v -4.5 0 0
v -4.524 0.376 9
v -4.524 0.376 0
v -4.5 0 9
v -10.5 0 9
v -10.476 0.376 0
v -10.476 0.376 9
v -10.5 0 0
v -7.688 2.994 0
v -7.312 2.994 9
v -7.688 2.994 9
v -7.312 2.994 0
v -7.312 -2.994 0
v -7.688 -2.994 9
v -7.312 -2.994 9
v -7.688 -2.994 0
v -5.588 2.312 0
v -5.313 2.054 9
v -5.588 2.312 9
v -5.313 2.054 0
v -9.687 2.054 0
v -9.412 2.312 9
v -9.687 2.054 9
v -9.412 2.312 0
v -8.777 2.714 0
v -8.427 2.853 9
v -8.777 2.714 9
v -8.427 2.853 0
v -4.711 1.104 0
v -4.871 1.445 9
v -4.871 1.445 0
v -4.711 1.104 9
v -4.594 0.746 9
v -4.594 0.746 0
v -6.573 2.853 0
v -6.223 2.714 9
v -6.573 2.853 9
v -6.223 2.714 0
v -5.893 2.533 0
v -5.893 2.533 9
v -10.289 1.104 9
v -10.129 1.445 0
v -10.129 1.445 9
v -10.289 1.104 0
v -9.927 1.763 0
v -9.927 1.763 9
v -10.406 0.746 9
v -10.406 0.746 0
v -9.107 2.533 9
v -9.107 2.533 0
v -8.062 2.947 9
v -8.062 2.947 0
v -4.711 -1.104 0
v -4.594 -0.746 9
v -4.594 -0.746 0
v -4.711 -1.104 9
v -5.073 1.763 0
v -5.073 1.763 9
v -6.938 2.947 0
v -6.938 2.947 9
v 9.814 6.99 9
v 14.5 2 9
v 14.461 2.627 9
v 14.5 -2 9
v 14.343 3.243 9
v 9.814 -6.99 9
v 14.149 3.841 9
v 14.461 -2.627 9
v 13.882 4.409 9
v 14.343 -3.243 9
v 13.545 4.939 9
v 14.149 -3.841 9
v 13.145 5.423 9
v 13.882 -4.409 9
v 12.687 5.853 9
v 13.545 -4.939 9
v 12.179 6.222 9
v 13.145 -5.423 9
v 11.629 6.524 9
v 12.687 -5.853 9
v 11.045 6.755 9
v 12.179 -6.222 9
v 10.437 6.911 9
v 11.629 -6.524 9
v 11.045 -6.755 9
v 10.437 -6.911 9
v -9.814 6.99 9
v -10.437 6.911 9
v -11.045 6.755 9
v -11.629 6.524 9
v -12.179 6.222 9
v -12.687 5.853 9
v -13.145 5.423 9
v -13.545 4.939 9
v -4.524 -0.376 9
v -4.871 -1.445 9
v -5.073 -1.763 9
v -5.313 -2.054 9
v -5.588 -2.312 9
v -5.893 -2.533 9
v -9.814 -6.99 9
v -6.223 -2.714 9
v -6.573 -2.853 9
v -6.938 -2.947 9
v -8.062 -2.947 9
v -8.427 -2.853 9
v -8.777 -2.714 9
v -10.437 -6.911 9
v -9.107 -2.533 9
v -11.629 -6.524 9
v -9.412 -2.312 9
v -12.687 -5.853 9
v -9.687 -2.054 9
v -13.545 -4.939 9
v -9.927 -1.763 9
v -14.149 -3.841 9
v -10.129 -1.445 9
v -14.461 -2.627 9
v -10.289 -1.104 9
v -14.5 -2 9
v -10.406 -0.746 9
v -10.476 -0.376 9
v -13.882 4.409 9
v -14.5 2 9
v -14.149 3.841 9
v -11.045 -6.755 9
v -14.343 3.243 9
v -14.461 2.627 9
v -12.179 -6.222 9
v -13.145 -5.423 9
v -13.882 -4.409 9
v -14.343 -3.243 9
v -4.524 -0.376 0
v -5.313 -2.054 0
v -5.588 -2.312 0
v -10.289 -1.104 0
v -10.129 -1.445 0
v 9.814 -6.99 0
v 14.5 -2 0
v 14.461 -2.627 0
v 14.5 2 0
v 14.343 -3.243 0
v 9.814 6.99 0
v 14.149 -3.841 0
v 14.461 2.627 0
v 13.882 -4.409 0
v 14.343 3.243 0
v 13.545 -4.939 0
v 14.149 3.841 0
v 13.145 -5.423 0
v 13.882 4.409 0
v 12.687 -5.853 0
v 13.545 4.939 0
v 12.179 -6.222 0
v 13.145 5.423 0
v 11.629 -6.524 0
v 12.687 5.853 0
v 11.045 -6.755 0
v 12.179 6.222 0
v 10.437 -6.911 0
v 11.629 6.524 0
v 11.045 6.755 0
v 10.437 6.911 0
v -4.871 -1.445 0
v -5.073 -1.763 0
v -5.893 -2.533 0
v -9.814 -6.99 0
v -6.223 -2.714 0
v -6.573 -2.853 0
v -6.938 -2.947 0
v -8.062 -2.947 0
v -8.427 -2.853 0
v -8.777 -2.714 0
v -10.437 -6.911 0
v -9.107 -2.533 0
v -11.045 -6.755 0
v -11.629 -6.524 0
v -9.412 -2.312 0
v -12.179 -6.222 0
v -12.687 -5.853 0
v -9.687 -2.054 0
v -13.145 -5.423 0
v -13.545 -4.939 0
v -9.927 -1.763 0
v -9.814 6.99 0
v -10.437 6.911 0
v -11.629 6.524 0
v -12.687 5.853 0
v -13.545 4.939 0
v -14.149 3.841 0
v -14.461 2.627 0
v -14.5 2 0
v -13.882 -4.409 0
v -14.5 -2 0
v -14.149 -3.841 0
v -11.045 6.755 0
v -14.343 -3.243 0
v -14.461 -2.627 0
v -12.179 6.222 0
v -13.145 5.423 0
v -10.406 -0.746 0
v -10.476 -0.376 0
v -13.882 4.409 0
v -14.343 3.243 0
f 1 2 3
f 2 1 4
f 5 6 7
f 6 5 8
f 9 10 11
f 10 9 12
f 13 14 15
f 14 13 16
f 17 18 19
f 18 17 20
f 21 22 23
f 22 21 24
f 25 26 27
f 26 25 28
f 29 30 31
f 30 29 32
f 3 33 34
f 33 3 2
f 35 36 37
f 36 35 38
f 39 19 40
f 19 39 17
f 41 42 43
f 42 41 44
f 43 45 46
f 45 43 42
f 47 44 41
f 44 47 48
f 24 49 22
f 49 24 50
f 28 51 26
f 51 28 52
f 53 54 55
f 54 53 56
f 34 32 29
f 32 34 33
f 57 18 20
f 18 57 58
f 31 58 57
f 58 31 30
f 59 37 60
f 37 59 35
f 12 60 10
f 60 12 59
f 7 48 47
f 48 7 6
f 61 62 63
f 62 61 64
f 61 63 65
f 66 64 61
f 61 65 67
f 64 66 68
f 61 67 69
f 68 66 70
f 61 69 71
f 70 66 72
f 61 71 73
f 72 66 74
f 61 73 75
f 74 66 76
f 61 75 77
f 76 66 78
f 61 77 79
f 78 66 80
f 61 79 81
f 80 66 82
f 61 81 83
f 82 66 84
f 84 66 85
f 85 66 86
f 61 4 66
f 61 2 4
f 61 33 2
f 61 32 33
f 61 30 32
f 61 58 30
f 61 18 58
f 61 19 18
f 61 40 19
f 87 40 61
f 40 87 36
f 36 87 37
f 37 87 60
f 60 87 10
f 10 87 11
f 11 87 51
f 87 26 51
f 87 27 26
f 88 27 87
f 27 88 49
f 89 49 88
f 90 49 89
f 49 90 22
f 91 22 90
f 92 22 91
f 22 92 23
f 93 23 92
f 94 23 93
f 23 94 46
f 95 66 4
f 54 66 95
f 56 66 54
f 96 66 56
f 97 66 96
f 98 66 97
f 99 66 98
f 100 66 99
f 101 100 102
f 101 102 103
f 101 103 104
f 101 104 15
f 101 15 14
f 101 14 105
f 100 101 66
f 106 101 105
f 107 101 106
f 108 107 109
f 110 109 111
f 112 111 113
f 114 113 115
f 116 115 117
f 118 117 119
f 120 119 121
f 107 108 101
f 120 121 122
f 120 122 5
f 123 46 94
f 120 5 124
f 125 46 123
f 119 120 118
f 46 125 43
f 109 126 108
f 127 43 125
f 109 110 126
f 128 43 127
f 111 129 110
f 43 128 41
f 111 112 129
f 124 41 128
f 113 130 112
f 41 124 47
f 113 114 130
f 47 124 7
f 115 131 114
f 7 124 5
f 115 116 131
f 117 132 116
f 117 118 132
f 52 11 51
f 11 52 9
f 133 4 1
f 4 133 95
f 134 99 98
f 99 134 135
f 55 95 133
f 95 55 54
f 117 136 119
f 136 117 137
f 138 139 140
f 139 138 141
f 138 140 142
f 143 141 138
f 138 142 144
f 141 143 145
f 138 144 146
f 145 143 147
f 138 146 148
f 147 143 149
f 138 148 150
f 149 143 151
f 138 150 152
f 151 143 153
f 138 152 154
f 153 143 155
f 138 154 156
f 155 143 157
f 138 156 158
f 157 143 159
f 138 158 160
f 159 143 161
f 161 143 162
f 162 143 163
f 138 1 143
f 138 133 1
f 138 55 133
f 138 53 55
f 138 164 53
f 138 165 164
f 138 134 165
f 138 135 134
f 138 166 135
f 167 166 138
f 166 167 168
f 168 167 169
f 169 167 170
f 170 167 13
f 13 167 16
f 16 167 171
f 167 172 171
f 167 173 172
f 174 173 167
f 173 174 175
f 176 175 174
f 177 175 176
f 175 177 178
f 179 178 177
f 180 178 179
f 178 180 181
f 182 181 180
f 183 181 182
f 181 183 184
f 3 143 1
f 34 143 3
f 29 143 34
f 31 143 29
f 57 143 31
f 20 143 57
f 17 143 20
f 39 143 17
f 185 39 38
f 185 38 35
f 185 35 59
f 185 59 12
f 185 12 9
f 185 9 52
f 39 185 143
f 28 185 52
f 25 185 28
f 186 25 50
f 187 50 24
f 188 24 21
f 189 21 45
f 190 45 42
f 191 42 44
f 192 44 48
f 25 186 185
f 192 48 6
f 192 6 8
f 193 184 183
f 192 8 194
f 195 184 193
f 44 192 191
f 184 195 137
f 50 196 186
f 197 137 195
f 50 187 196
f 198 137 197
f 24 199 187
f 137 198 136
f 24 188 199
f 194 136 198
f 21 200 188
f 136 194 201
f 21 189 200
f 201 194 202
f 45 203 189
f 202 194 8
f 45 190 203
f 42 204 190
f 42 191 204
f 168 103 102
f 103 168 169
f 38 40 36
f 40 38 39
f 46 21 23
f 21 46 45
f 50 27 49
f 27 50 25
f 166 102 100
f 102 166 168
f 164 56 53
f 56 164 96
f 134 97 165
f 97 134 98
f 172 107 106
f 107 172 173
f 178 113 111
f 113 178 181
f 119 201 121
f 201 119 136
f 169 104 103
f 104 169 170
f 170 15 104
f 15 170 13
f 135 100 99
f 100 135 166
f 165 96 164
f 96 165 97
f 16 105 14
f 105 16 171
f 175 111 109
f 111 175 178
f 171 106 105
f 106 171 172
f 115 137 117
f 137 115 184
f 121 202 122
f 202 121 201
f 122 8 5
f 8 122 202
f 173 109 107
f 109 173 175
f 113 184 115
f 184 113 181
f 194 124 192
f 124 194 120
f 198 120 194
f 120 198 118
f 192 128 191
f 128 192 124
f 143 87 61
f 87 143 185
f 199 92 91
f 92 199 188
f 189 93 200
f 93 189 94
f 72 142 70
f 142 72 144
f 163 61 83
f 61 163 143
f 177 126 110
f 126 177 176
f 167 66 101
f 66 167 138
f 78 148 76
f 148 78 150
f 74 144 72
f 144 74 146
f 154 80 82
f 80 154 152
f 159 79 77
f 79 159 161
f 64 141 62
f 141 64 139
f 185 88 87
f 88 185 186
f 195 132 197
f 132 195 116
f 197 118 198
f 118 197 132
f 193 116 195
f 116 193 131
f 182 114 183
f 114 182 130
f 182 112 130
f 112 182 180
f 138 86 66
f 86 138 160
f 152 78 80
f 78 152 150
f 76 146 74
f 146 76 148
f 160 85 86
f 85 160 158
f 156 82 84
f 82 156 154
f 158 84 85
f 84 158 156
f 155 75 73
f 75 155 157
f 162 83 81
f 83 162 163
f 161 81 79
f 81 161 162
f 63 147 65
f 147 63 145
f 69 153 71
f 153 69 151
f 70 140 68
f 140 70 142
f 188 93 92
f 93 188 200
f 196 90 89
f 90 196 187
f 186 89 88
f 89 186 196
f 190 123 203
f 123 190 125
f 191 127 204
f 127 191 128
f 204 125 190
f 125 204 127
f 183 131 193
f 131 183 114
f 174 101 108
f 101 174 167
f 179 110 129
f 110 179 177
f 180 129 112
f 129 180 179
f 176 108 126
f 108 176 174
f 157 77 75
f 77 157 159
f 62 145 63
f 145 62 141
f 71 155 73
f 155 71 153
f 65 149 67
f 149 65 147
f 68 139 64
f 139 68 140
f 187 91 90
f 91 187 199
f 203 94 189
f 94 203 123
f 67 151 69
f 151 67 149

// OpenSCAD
$fn = 50;


difference() {
	union() {
		hull() {
			translate(v = [-9.5000000000, 2.0000000000, 0]) {
				cylinder(h = 9, r = 5);
			}
			translate(v = [9.5000000000, 2.0000000000, 0]) {
				cylinder(h = 9, r = 5);
			}
			translate(v = [-9.5000000000, -2.0000000000, 0]) {
				cylinder(h = 9, r = 5);
			}
			translate(v = [9.5000000000, -2.0000000000, 0]) {
				cylinder(h = 9, r = 5);
			}
		}
	}
	union() {
		translate(v = [-7.5000000000, 0.0000000000, 0]) {
			cylinder(h = 9, r = 3.0000000000);
		}
		translate(v = [-7.5000000000, 0.0000000000, 0]) {
			cylinder(h = 9, r = 1.5000000000);
		}
		translate(v = [-7.5000000000, 0.0000000000, 0]) {
			cylinder(h = 9, r = 1.5000000000);
		}
		translate(v = [-7.5000000000, 0.0000000000, 0]) {
			cylinder(h = 9, r = 1.5000000000);
		}
	}
}
